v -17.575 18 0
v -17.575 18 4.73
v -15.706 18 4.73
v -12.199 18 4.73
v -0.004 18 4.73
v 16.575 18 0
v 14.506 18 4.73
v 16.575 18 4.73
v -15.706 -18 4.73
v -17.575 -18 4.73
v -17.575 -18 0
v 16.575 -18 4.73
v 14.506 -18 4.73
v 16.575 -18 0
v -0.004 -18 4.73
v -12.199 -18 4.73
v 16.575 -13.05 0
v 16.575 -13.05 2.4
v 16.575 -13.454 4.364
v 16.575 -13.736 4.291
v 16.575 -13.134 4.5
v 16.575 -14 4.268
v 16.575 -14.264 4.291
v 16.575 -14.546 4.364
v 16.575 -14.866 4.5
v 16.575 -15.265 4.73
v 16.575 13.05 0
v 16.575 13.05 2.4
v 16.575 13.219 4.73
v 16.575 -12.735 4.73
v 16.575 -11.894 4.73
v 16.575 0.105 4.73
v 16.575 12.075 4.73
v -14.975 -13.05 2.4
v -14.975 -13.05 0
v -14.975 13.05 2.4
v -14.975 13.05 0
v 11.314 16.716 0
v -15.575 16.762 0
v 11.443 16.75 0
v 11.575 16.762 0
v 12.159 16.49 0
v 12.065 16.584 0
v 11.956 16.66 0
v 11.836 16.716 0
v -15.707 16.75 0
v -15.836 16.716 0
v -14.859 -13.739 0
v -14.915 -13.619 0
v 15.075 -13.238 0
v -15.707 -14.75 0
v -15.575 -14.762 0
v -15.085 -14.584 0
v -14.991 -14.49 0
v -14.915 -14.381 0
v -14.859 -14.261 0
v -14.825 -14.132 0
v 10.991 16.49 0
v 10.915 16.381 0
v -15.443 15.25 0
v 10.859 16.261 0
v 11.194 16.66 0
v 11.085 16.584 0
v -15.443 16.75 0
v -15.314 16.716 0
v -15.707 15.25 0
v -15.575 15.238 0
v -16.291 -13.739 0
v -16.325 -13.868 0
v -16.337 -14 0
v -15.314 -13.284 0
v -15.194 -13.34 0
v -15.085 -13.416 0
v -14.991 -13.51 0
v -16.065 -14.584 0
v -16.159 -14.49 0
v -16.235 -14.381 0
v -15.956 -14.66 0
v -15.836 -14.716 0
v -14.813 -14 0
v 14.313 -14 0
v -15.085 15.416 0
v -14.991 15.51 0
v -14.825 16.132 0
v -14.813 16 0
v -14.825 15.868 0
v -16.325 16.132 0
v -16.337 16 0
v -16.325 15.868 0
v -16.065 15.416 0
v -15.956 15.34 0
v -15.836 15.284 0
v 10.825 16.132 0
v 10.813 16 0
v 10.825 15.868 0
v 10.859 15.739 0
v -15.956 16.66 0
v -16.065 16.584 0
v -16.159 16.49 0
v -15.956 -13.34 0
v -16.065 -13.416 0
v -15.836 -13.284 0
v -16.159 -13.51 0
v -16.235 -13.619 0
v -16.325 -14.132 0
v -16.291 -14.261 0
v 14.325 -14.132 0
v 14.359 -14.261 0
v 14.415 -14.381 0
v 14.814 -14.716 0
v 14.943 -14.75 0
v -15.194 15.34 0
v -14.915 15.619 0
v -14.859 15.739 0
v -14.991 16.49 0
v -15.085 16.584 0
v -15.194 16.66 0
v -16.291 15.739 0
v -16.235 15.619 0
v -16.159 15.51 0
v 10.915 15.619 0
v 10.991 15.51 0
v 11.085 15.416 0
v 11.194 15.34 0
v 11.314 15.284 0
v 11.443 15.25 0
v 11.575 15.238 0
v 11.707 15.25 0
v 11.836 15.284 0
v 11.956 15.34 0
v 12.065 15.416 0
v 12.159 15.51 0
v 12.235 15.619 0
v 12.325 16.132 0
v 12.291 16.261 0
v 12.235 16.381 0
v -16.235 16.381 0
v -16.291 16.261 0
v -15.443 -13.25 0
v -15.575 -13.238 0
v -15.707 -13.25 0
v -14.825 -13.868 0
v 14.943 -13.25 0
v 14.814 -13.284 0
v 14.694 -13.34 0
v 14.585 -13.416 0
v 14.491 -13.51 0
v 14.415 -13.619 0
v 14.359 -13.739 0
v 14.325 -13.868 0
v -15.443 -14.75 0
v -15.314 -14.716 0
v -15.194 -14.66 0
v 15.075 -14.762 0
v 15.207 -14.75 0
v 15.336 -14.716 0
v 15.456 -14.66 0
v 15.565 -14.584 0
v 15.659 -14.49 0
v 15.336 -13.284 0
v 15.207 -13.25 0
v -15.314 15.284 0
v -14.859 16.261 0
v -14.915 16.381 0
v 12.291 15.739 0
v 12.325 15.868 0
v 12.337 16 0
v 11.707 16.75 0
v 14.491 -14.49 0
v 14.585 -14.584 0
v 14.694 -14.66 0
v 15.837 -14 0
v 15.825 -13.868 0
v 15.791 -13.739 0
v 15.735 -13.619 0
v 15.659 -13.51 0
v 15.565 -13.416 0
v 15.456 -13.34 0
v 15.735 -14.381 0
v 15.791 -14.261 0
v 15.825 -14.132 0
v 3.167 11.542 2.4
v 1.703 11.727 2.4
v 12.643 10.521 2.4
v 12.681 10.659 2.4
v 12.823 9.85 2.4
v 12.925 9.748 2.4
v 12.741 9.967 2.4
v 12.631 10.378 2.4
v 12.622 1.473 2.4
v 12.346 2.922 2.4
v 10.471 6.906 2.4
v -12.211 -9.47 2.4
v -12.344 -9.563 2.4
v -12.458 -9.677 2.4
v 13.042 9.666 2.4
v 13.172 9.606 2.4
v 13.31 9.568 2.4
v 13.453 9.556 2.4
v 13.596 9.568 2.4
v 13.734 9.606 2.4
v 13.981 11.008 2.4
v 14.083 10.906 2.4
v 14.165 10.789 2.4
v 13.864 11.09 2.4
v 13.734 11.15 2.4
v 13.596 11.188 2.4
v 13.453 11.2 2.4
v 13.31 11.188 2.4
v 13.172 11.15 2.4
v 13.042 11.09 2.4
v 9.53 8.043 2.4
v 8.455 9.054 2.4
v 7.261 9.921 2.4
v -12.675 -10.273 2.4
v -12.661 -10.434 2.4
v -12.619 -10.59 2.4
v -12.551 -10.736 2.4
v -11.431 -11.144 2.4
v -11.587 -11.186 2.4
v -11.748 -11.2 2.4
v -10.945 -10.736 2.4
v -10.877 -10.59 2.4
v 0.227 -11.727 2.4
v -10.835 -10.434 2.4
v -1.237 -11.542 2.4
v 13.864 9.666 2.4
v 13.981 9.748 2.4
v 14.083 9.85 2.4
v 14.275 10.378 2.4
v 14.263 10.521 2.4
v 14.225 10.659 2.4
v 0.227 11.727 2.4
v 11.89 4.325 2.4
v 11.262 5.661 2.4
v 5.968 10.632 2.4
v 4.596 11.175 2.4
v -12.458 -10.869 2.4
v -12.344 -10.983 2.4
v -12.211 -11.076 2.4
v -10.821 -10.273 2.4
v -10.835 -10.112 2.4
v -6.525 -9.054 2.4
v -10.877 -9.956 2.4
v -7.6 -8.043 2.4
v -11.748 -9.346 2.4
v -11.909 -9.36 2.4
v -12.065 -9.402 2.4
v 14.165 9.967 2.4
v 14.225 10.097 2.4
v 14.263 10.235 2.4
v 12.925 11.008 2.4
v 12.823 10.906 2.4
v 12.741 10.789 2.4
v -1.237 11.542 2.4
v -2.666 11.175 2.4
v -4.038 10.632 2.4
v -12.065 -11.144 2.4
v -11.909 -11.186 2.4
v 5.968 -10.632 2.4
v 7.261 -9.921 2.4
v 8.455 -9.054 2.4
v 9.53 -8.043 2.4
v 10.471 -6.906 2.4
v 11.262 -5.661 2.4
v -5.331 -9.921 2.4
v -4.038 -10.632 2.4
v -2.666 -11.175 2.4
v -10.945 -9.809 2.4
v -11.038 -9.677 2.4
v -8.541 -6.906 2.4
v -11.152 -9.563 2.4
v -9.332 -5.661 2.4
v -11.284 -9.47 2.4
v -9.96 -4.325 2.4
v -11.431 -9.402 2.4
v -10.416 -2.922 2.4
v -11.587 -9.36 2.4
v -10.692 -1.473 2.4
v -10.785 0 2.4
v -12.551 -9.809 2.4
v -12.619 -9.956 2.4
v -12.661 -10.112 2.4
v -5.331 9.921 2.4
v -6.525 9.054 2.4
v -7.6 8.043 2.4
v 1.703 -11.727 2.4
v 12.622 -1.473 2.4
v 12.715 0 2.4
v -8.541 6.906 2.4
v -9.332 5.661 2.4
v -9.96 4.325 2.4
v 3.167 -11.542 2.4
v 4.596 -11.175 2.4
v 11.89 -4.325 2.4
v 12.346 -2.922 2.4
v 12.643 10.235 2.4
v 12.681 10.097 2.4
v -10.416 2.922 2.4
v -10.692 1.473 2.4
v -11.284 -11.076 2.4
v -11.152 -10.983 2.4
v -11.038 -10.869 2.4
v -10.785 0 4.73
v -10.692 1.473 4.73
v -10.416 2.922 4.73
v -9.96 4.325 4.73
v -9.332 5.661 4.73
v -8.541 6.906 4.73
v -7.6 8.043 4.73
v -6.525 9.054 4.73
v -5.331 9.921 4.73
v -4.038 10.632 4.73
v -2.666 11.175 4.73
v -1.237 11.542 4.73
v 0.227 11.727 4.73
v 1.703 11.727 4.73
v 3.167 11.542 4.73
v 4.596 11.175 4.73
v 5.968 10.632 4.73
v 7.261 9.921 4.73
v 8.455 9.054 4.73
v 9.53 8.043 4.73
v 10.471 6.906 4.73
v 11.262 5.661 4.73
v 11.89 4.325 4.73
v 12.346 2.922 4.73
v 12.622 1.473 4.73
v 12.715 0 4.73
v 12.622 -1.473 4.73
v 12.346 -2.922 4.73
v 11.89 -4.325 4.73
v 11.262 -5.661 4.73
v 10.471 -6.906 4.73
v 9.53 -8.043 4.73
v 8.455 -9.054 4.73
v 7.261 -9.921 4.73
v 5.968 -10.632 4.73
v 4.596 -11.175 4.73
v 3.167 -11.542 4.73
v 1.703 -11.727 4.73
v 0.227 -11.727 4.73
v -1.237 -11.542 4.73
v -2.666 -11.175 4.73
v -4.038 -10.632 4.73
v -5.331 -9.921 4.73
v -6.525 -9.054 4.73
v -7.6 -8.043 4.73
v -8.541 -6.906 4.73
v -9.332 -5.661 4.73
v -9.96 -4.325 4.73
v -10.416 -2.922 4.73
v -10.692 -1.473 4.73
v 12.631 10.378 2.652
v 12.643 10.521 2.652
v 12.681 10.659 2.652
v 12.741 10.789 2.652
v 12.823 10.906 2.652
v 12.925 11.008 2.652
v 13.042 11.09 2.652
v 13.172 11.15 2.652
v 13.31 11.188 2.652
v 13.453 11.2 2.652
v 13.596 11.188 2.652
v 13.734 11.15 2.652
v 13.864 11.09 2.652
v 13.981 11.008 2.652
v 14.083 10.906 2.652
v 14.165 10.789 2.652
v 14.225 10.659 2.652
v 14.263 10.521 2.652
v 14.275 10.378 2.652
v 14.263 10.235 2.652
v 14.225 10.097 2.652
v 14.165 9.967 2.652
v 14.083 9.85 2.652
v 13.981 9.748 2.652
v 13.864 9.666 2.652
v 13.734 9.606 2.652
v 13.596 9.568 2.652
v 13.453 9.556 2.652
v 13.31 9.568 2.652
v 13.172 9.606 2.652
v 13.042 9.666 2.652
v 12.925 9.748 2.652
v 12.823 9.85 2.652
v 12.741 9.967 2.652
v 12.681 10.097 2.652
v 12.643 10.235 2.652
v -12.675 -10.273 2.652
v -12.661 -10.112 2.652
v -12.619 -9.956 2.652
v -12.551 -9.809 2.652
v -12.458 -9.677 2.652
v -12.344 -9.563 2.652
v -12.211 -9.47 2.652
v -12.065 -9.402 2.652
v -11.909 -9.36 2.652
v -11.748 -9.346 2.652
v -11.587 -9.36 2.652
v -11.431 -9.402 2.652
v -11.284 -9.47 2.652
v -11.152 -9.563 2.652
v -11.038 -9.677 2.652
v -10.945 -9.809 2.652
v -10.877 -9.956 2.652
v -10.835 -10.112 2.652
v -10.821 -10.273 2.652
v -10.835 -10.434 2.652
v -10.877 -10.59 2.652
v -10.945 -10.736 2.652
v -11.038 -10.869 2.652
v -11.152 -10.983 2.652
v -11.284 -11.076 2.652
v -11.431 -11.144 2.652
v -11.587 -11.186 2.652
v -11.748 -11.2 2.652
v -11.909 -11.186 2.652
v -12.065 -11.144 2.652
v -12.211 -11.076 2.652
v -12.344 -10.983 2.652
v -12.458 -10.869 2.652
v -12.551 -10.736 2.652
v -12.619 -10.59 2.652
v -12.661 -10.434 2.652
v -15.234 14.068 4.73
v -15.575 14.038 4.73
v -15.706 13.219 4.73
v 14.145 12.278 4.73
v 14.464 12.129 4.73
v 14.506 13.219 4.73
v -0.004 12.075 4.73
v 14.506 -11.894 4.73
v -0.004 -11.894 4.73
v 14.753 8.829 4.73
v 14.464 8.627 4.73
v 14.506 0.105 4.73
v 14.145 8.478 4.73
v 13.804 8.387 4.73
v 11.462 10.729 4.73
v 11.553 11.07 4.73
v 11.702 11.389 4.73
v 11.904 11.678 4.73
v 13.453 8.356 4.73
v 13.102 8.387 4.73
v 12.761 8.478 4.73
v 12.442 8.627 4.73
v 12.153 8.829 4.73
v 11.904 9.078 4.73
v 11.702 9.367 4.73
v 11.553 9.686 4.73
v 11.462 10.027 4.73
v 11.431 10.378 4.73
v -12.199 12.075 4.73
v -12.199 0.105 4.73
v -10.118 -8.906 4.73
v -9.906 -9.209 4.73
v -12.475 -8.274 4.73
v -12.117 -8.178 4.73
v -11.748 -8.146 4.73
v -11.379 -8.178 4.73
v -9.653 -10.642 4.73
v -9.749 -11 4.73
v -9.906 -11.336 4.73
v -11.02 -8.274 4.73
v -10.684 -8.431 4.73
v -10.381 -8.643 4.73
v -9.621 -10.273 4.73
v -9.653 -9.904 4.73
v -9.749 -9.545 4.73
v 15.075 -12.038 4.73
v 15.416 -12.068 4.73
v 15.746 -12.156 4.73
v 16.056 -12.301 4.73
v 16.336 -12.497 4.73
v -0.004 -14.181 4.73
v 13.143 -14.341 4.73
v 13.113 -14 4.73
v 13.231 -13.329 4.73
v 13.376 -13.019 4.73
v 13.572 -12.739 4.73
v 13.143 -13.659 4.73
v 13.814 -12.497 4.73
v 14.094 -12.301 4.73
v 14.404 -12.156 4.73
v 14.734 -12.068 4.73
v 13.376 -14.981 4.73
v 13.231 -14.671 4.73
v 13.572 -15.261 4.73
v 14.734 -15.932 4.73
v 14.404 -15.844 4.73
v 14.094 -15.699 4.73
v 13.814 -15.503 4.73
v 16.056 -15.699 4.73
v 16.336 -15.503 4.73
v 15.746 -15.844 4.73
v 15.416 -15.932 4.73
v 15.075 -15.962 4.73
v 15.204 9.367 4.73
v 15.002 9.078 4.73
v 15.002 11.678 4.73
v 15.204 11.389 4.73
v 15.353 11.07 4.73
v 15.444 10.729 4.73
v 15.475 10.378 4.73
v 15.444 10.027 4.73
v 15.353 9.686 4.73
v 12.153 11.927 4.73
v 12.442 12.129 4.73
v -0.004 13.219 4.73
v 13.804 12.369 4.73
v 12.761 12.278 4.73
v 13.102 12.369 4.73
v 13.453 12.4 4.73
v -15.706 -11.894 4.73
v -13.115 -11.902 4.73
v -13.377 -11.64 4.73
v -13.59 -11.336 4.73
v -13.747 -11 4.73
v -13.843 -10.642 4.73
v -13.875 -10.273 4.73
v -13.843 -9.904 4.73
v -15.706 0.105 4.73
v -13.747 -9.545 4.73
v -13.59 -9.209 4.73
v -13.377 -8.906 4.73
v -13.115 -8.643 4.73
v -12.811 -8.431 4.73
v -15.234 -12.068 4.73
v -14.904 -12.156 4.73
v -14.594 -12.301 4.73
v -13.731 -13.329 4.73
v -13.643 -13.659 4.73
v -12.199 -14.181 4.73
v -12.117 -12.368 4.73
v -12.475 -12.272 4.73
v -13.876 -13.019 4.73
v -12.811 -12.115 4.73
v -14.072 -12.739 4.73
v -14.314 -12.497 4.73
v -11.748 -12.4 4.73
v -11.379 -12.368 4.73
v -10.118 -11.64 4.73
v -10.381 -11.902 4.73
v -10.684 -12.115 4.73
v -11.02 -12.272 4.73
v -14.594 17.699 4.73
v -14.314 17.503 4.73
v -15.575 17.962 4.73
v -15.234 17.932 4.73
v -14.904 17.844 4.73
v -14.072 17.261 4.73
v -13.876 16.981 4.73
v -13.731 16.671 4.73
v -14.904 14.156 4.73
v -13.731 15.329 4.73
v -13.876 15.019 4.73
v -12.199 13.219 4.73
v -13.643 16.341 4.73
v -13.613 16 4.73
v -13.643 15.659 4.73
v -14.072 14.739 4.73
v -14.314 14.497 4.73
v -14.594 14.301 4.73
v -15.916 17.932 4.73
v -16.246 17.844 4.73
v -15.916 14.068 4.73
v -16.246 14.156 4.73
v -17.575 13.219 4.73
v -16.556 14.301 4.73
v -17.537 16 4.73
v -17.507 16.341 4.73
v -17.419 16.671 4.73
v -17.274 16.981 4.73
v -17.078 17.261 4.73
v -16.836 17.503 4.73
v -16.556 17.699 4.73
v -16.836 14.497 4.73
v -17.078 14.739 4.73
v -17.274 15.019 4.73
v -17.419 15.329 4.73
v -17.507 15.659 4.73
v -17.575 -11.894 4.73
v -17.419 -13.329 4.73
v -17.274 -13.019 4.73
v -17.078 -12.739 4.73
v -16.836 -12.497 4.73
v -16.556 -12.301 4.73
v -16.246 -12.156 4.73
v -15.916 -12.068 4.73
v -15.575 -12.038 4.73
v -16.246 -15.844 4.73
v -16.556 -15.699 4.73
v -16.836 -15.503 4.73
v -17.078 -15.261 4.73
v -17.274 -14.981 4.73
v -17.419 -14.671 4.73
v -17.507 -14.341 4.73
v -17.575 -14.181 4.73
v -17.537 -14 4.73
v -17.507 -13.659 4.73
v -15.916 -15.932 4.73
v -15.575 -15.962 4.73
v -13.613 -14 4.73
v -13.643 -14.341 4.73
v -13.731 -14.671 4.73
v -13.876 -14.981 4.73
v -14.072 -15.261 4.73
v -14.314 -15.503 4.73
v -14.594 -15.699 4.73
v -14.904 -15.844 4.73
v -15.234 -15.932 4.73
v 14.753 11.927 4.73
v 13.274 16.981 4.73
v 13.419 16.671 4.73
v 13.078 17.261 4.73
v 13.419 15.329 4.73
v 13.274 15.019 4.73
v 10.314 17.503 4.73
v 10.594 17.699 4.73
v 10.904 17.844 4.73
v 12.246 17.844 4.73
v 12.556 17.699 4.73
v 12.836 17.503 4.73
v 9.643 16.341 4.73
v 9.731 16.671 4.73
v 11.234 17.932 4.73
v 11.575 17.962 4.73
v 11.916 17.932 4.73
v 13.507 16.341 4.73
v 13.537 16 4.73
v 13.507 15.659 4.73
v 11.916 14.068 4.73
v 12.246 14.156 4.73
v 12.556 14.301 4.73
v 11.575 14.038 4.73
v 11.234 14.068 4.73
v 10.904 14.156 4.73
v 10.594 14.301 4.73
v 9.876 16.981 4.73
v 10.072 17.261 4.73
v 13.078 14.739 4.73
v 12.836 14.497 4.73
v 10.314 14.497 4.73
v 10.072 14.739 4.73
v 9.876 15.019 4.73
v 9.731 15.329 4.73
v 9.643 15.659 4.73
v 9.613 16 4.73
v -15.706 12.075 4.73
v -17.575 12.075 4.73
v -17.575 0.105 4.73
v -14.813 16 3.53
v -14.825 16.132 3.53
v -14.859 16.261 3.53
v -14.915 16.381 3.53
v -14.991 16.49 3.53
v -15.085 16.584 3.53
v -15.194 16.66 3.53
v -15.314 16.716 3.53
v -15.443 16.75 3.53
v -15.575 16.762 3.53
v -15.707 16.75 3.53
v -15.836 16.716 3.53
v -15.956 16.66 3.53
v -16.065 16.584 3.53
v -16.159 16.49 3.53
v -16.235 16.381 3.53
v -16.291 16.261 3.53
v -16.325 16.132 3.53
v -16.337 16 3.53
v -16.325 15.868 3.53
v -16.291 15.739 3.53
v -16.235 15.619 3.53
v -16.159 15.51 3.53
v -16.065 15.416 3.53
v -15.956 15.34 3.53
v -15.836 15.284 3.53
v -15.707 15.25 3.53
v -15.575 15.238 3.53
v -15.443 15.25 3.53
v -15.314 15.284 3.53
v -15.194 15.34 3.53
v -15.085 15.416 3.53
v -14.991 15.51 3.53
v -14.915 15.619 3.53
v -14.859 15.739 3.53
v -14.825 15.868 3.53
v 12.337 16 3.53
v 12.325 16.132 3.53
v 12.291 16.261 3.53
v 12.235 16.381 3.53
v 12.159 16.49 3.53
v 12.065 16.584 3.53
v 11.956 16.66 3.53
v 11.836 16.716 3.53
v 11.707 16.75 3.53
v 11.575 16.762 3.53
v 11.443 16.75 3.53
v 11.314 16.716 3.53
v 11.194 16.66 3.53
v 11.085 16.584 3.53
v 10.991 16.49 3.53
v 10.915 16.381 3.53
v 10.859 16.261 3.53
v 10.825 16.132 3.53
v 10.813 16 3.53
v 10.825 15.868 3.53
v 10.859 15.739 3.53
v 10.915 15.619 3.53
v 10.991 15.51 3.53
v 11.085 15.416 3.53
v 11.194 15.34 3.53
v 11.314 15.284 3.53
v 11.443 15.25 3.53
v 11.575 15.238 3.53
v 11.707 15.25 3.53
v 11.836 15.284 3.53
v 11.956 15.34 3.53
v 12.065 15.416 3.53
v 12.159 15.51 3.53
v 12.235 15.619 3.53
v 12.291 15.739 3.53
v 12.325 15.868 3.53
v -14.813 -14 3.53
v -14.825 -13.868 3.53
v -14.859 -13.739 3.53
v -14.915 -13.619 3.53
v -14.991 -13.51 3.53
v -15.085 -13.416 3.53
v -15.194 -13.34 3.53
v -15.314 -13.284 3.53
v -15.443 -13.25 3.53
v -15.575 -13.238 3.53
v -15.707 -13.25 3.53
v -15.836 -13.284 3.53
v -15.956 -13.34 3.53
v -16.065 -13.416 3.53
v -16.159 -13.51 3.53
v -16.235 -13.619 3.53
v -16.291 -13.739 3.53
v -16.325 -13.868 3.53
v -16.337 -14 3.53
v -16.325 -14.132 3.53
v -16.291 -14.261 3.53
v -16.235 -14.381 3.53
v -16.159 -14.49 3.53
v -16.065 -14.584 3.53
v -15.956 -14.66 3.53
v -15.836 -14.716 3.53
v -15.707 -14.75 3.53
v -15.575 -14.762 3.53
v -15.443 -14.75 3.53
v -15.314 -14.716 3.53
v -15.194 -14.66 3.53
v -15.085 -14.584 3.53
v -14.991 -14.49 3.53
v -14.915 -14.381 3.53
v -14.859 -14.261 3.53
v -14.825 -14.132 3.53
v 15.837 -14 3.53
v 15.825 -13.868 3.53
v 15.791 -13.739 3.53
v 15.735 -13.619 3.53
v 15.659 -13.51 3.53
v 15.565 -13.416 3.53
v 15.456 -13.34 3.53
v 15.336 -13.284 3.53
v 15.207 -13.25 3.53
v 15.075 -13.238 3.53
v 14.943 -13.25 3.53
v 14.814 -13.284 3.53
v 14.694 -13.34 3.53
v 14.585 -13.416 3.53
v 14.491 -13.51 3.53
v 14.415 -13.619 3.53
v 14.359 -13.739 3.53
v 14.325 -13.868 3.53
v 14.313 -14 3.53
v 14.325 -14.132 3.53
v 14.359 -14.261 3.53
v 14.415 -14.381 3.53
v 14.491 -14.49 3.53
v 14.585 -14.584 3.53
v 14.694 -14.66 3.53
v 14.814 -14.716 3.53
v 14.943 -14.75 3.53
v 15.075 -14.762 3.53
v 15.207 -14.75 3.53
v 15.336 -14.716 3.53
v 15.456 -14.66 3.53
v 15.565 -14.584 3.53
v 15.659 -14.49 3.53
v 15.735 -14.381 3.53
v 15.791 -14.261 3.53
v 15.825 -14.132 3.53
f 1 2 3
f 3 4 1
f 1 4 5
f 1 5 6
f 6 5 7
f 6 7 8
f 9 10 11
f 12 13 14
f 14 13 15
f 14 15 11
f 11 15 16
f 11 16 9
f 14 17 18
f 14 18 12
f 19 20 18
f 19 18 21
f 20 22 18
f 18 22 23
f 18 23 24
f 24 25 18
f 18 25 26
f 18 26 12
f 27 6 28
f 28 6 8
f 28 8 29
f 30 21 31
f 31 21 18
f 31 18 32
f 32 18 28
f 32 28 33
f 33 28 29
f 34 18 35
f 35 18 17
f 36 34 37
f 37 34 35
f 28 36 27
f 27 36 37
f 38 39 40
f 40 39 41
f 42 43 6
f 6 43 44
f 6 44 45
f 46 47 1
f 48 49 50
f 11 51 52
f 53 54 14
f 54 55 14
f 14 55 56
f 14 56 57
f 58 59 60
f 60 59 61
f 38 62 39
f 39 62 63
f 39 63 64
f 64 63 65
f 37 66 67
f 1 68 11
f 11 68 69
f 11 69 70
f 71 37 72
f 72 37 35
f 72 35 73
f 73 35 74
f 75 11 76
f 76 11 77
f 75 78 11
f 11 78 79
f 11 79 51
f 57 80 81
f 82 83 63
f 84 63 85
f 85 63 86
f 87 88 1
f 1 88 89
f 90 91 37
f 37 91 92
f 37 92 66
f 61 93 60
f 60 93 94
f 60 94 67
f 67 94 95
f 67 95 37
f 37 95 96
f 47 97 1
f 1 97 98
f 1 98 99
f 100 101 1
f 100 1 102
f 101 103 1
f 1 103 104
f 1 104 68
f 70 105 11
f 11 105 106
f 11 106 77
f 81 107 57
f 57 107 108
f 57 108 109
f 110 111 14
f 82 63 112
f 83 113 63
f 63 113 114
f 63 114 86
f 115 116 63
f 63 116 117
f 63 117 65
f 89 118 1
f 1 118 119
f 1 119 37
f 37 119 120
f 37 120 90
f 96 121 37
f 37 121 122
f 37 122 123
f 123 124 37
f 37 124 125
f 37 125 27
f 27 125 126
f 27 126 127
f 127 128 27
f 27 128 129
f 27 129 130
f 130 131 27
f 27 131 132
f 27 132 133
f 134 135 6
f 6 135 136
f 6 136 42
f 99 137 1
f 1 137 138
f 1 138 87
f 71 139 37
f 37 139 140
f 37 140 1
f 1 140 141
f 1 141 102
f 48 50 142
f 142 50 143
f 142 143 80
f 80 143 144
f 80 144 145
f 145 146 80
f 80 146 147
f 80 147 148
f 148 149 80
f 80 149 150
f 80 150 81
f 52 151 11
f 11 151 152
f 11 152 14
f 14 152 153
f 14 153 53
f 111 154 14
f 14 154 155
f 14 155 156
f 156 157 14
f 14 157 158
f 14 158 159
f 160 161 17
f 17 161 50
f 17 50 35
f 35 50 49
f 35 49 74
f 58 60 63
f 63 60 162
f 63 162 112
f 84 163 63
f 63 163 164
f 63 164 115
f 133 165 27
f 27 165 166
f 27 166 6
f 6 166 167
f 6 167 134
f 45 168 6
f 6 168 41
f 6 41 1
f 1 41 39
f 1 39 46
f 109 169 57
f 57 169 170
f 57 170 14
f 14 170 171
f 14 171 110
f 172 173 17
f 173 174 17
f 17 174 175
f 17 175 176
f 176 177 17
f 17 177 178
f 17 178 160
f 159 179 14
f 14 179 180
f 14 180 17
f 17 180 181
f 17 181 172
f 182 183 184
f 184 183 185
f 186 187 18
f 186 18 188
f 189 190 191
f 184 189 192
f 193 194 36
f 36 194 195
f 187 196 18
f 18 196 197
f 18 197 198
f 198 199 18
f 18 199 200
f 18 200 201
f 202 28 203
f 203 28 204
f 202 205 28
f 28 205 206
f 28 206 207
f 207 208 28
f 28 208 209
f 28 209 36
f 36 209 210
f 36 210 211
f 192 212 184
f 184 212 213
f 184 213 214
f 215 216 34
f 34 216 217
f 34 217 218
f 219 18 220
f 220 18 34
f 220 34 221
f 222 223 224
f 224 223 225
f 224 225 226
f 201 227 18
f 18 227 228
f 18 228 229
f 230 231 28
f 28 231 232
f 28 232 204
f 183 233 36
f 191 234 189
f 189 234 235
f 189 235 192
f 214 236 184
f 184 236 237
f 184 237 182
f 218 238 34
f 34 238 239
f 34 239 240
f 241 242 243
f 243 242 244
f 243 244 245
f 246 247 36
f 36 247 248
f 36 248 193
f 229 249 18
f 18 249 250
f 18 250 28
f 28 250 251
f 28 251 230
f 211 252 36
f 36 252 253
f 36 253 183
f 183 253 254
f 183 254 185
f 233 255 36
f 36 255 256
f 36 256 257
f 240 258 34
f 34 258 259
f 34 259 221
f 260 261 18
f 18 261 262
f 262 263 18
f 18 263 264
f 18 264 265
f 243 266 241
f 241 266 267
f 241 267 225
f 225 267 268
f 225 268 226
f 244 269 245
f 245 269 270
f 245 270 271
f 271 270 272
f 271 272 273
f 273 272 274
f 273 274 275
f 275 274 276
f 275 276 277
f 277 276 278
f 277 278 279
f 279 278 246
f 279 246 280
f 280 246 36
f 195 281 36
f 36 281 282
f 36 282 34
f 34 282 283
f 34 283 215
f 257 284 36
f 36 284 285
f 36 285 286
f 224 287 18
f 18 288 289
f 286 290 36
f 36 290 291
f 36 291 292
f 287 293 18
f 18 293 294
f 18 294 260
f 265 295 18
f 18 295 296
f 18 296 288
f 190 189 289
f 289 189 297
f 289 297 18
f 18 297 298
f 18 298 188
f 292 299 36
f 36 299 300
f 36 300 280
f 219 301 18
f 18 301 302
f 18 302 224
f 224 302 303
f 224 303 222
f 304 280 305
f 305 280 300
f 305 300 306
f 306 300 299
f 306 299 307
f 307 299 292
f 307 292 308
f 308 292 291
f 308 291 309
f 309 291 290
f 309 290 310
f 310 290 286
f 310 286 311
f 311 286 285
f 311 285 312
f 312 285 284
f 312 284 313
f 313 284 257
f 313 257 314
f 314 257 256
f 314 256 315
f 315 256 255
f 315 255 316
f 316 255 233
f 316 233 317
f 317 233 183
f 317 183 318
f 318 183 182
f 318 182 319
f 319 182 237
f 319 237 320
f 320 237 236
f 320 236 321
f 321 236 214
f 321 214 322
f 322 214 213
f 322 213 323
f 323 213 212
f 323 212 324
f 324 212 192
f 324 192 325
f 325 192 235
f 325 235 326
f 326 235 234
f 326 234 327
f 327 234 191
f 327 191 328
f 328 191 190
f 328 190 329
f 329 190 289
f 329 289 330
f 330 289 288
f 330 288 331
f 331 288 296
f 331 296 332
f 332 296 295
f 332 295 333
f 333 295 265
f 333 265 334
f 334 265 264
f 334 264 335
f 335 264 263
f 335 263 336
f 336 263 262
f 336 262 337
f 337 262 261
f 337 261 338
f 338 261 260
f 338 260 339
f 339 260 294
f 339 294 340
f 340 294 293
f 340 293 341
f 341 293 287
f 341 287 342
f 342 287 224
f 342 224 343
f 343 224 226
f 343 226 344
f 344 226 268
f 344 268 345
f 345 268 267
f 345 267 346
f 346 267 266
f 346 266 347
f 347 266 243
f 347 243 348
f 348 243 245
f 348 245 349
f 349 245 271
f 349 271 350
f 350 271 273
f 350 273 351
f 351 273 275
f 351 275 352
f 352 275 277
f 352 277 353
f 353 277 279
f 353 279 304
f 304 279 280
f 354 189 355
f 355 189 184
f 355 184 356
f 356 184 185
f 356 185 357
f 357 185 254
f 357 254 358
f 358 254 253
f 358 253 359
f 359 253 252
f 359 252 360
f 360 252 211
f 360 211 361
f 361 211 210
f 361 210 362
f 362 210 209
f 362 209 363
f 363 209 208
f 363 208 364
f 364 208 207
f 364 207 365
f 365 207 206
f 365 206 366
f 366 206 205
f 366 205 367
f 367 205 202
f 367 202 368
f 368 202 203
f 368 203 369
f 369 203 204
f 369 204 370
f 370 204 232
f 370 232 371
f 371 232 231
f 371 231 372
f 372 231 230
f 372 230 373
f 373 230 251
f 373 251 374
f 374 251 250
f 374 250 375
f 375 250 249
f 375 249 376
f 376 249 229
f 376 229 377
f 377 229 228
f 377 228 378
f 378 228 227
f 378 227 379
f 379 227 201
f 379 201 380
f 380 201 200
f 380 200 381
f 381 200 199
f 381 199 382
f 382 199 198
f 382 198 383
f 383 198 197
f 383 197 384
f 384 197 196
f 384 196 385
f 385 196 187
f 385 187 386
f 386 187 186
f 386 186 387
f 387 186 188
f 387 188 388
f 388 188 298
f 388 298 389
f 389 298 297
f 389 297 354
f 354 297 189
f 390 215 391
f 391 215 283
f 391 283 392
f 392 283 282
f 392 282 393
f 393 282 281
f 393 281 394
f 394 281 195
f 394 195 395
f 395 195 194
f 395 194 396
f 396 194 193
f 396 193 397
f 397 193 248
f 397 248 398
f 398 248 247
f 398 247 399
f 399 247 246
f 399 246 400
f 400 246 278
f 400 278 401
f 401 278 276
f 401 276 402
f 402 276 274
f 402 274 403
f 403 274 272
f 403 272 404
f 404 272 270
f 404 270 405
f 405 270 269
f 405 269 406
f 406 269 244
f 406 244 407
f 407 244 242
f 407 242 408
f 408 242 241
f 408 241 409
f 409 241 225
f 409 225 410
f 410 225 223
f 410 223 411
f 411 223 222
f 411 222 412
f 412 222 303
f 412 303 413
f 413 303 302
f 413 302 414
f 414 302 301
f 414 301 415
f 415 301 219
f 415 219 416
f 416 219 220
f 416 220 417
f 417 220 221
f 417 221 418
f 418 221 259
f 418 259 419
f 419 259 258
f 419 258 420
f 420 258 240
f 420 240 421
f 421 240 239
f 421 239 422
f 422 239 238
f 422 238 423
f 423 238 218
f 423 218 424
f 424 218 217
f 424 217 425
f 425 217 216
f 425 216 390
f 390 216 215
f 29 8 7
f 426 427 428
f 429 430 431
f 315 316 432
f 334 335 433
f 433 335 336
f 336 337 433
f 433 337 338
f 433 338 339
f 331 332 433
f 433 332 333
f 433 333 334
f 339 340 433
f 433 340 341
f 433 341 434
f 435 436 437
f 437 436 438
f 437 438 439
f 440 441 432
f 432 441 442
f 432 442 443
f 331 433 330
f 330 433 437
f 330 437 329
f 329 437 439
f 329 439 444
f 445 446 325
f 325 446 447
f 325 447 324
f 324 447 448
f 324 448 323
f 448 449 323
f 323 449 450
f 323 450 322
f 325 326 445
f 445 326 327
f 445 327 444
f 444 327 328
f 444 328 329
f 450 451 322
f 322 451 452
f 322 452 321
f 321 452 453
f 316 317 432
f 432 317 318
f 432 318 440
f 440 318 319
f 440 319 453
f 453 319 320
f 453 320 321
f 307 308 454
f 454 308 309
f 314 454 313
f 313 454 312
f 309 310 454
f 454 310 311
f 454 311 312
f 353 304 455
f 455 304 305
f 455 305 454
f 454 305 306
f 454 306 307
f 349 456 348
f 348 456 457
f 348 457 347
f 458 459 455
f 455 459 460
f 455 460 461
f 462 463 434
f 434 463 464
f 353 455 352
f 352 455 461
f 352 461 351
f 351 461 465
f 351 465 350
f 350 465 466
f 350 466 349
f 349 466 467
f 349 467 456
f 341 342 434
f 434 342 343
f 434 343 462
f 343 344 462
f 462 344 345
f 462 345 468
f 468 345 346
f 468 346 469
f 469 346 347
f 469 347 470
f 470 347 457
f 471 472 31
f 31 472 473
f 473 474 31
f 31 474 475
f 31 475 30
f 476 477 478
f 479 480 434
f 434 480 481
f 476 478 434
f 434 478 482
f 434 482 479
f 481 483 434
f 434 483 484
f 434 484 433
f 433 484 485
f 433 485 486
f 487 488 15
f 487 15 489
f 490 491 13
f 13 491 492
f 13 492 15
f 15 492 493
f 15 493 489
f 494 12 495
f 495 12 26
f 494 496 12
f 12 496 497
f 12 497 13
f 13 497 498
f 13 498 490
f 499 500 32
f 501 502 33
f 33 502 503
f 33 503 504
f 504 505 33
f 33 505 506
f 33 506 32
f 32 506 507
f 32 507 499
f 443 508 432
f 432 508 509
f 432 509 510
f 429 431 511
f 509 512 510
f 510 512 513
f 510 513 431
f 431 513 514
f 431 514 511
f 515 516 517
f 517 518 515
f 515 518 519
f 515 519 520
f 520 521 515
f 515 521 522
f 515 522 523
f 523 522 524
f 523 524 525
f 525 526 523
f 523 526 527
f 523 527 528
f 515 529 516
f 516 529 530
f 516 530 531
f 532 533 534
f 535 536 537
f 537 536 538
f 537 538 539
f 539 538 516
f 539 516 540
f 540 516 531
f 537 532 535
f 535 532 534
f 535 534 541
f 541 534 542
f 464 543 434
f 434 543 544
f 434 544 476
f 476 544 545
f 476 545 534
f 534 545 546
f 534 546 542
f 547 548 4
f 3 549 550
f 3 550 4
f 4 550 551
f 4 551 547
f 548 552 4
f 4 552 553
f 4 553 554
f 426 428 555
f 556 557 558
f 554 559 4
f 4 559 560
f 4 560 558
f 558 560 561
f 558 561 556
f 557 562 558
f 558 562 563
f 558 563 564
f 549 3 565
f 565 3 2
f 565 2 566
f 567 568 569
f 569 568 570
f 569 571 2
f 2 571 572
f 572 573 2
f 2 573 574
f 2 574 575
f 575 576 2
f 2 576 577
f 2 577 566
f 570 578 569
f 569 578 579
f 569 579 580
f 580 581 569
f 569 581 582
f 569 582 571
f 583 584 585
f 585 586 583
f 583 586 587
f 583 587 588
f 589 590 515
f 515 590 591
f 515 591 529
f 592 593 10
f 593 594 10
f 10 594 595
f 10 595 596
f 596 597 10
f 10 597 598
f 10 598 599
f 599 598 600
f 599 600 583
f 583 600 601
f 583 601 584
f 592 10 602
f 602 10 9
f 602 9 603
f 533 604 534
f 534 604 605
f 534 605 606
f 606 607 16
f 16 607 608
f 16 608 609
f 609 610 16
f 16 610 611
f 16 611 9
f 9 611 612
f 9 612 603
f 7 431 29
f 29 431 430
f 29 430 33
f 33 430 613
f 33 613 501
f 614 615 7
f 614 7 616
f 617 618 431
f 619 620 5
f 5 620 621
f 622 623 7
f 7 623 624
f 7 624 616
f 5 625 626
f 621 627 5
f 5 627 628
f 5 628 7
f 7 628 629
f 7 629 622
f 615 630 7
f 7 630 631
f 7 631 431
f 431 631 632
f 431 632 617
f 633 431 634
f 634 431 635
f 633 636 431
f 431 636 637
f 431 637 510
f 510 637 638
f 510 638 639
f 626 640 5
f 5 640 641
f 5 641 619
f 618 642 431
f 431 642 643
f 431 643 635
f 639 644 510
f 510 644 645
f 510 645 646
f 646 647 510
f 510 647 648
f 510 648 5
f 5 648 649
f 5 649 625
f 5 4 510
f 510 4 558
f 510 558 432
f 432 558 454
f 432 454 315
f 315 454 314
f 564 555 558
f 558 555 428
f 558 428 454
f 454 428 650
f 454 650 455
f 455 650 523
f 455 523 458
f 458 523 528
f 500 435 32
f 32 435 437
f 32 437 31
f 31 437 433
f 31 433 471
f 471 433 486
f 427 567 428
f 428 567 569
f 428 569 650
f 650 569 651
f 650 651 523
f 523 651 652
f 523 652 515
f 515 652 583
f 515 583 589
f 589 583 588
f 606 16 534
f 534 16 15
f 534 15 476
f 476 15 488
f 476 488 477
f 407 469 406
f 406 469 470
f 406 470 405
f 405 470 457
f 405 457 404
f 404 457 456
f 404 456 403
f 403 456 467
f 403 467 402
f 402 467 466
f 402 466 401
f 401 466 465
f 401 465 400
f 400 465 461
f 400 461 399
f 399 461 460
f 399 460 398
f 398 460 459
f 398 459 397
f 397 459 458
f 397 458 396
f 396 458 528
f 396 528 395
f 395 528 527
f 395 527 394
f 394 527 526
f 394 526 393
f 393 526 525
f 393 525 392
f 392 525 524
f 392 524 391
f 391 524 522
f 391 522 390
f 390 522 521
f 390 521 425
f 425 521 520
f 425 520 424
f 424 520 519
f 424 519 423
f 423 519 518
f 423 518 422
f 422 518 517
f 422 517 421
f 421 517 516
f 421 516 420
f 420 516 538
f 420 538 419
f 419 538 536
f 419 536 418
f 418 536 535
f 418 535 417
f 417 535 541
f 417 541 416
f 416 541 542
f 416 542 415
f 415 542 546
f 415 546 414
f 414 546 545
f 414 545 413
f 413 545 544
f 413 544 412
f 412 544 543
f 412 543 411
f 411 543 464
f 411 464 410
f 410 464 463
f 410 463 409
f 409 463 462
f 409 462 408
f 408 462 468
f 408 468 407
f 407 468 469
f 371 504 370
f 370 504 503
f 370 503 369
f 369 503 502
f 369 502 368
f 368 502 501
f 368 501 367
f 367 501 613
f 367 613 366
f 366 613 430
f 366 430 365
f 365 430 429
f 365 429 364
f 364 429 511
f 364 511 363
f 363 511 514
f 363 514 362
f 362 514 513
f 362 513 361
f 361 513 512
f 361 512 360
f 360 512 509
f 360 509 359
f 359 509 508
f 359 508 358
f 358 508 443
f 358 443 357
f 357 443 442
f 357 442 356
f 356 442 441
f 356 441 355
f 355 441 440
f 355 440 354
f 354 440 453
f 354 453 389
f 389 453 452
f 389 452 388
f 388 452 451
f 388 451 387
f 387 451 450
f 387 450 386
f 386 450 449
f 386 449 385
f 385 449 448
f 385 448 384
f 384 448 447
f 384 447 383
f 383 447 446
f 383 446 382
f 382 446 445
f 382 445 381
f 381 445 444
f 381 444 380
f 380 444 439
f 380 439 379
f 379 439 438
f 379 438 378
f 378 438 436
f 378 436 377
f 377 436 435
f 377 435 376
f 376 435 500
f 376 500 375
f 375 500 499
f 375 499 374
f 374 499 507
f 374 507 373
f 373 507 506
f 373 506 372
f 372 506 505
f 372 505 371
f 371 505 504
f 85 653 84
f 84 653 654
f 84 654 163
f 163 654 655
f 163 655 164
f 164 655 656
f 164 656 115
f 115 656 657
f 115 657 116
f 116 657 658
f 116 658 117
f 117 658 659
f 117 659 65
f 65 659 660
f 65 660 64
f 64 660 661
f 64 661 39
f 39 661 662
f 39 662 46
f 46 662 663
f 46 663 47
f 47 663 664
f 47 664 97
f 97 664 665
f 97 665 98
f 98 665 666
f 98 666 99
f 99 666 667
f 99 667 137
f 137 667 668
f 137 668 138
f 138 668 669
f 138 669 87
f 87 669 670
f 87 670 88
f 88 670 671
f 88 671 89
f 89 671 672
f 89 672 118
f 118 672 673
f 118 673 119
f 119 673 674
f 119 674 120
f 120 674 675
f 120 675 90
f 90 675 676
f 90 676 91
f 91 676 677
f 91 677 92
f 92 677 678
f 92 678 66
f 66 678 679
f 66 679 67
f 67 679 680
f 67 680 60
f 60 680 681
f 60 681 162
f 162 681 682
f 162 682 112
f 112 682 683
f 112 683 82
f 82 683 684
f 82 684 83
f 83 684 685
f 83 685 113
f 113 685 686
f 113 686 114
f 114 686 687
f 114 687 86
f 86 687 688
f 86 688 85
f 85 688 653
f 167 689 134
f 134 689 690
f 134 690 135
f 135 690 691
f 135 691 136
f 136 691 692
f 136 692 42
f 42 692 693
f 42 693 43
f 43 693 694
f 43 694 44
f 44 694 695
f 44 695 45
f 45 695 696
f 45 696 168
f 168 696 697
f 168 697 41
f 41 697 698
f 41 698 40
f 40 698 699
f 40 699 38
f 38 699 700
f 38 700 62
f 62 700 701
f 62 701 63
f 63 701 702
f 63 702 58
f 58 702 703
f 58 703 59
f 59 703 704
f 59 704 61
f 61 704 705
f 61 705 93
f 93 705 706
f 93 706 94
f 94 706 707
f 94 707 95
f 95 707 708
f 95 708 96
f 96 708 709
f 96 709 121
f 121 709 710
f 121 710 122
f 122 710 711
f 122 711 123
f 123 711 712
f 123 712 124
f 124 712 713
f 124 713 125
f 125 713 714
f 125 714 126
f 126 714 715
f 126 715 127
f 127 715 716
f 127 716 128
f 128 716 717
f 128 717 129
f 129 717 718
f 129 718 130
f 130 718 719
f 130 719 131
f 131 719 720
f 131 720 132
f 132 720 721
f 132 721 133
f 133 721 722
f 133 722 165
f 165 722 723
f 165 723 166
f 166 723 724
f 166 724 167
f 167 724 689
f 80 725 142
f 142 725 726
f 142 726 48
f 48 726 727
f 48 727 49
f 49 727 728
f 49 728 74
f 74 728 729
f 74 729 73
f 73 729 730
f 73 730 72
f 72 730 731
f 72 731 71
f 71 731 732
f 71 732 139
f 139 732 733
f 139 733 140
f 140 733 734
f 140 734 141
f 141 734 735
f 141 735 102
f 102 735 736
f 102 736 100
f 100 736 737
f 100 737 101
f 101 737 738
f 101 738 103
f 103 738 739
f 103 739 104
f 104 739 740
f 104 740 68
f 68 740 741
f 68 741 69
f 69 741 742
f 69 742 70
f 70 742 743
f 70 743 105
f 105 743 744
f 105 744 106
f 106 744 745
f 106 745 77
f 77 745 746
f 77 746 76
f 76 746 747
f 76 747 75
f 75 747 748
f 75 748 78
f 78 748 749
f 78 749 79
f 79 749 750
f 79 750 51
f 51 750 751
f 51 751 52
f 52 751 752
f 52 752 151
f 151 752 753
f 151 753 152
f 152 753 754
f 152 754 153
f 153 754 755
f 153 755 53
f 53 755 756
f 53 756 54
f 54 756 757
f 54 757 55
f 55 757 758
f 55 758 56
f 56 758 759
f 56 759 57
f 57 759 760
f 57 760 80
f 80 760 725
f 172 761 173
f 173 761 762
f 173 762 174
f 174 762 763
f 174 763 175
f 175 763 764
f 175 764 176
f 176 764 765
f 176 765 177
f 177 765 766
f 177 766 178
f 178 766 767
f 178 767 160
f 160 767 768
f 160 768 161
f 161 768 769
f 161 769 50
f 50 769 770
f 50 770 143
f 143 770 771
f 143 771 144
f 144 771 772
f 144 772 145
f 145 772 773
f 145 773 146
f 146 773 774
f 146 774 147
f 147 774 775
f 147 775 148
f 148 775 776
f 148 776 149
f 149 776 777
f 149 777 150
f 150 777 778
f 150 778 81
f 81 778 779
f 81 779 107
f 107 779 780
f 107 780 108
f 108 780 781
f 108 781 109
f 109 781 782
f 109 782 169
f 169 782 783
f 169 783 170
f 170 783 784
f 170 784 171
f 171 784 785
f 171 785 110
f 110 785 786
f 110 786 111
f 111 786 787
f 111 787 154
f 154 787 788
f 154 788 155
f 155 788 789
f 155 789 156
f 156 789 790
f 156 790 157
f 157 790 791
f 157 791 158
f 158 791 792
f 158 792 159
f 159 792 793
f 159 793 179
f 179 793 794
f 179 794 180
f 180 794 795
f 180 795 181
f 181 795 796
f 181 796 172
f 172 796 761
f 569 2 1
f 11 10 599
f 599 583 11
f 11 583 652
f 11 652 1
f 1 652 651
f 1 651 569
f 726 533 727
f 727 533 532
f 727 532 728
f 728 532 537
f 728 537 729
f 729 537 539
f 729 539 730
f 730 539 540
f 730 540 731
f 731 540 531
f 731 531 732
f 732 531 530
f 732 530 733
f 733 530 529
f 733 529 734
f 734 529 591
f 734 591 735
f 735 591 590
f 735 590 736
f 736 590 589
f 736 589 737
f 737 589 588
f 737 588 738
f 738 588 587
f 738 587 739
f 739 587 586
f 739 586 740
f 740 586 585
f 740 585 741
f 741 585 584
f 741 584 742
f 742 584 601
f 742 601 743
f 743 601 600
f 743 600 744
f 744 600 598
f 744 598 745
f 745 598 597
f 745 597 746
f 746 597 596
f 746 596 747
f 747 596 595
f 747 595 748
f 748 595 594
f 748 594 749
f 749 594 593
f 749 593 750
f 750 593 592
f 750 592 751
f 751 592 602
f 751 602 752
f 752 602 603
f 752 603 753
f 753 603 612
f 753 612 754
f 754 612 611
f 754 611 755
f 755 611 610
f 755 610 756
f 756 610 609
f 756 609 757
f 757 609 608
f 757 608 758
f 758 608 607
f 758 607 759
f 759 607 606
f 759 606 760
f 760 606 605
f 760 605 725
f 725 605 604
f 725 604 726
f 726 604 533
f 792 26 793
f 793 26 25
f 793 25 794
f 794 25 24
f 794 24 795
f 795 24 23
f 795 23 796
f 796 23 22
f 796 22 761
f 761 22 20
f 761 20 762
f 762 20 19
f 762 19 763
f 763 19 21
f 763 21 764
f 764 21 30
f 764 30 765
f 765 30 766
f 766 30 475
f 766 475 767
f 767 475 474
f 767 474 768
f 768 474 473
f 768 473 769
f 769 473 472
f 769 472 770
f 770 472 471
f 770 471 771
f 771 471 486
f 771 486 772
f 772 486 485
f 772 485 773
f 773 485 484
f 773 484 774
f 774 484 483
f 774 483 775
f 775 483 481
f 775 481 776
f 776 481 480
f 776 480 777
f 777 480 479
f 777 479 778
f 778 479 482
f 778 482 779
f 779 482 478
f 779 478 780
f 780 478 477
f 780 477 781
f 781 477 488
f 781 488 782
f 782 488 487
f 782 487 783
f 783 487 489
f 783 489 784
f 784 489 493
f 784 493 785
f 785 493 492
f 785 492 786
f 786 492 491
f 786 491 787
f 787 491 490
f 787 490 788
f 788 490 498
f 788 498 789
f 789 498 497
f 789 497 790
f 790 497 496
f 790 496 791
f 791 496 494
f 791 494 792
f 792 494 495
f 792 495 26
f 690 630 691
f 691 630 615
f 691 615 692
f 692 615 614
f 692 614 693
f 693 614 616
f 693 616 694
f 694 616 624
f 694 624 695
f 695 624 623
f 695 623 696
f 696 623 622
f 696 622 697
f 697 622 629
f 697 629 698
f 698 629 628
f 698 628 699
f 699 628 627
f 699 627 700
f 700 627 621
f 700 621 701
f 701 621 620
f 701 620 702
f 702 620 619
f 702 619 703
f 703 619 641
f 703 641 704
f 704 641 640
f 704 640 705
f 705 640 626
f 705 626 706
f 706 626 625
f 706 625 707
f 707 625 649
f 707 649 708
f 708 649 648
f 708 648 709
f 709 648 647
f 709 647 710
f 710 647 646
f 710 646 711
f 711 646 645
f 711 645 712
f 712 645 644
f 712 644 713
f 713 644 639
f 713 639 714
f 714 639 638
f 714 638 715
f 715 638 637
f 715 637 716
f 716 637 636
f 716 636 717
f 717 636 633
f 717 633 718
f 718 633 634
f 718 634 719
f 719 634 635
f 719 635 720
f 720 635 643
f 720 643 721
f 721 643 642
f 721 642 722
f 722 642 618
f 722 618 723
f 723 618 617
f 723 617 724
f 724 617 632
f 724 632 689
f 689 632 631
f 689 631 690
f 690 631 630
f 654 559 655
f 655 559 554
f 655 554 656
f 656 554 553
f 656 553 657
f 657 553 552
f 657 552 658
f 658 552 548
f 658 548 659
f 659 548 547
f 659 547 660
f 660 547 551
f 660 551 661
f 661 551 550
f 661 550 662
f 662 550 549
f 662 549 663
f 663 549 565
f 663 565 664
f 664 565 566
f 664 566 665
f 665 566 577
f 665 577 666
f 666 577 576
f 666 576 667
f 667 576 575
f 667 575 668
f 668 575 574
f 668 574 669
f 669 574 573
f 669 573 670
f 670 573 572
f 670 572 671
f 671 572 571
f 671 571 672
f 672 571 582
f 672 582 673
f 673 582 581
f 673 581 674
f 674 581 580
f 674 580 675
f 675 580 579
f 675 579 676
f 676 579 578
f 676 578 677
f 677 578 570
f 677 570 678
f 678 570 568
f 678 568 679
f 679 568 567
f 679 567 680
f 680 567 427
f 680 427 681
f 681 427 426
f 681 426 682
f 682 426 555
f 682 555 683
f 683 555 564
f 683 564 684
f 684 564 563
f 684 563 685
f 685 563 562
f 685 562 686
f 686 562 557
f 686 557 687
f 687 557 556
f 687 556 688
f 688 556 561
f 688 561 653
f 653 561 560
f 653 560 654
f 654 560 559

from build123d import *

# Parameters (mm, degrees)
BOSS_EXTRUDE1_DEPTH = 2.4
SKETCH2_W           = 33.15
SKETCH2_H           = 36
SKETCH2_R           = 11.75
SKETCH2_R_2         = 0.822021887
SKETCH2_R_3         = 0.927108541
BOSS_EXTRUDE2_DEPTH = 2.33
CHAMFER1_SIZE       = 1.2
CHAMFER1_SIZE2      = 2.078460969
SKETCH3_R           = 0.762
CUT_EXTRUDE1_DEPTH  = 5.8
SKETCH4_W           = 4.73
SKETCH4_H           = 36
BOSS_EXTRUDE3_DEPTH = 1
CHAMFER2_SIZE       = 1.2


with BuildPart() as part:
    # Sketch1 → Boss-Extrude1 (new body)
    with BuildSketch(Plane.XY):
        Polygon((-16.575, -18), (16.575, -18), (16.575, -13.05), (-14.975, -13.05), (-14.975, 13.05), (16.575, 13.05), (16.575, 18), (-16.575, 18), align=None)
    extrude(amount=BOSS_EXTRUDE1_DEPTH)

    # Sketch2 → Boss-Extrude2 (add)
    with BuildSketch(Plane.XY.offset(2.4)):
        Rectangle(SKETCH2_W, SKETCH2_H)
        with Locations((0.965, 0)):
            Circle(SKETCH2_R, mode=Mode.SUBTRACT)
        with Locations((13.452978113, 10.377978113)):
            Circle(SKETCH2_R_2, mode=Mode.SUBTRACT)
        with Locations((-11.747891459, -10.272891459)):
            Circle(SKETCH2_R_3, mode=Mode.SUBTRACT)
    extrude(amount=BOSS_EXTRUDE2_DEPTH)

    # Chamfer1
    chamfer1_edges = [part.edges().sort_by_distance(p)[0] for p in [
        (12.630956227, 10.377978113, 4.73),
        (-12.675, -10.272891459, 4.73),
    ]]
    chamfer1_side = [part.faces().sort_by_distance(p)[0] for p in [
        (0, 17.510620546, 4.73),
    ]]
    chamfer(chamfer1_edges, length=CHAMFER1_SIZE, length2=CHAMFER1_SIZE2, reference=chamfer1_side[0])

    # Sketch3 → Cut-Extrude1 (cut)
    with BuildSketch(Plane.XY.offset(4.73)):
        with Locations((-15.575, 16)):
            Circle(SKETCH3_R)
        with Locations(Location((11.575, 16, 0), (0, 0, 180))):
            Circle(SKETCH3_R)
        with Locations((-15.575, -14)):
            Circle(SKETCH3_R)
        with Locations(Location((15.075, -14, 0), (0, 0, 180))):
            Circle(SKETCH3_R)
    extrude(amount=-CUT_EXTRUDE1_DEPTH, mode=Mode.SUBTRACT)

    # Sketch4 → Boss-Extrude3 (add)
    with BuildSketch(Plane.ZY.offset(16.575)):
        with Locations((2.365, 0)):
            Rectangle(SKETCH4_W, SKETCH4_H)
    extrude(amount=BOSS_EXTRUDE3_DEPTH)

    # Chamfer2
    # the kernel refuses this chamfer: 1.2 mm, written as the material it takes off along each edge
    with BuildSketch(Plane(origin=(15.075, -14, 4.73), x_dir=(-1, 0, 0), z_dir=(0, 1, 0))) as chamfer2_piece_1:
        Polygon((0.762 + CHAMFER2_SIZE, 0), (0.762, -CHAMFER2_SIZE), (0.762, 0), align=None)
    revolve(axis=Axis((15.075, -14, 4.73), (0, 0, 1)), mode=Mode.SUBTRACT)
    with BuildSketch(Plane(origin=(-15.575, -14, 4.73), x_dir=(1, 0, 0), z_dir=(0, -1, 0))) as chamfer2_piece_2:
        Polygon((0.762 + CHAMFER2_SIZE, 0), (0.762, -CHAMFER2_SIZE), (0.762, 0), align=None)
    revolve(axis=Axis((-15.575, -14, 4.73), (0, 0, 1)), mode=Mode.SUBTRACT)
    with BuildSketch(Plane(origin=(11.575, 16, 4.73), x_dir=(-1, 0, 0), z_dir=(0, 1, 0))) as chamfer2_piece_3:
        Polygon((0.762 + CHAMFER2_SIZE, 0), (0.762, -CHAMFER2_SIZE), (0.762, 0), align=None)
    revolve(axis=Axis((11.575, 16, 4.73), (0, 0, 1)), mode=Mode.SUBTRACT)
    with BuildSketch(Plane(origin=(-15.575, 16, 4.73), x_dir=(1, 0, 0), z_dir=(0, -1, 0))) as chamfer2_piece_4:
        Polygon((0.762 + CHAMFER2_SIZE, 0), (0.762, -CHAMFER2_SIZE), (0.762, 0), align=None)
    revolve(axis=Axis((-15.575, 16, 4.73), (0, 0, 1)), mode=Mode.SUBTRACT)


solid = part.part
